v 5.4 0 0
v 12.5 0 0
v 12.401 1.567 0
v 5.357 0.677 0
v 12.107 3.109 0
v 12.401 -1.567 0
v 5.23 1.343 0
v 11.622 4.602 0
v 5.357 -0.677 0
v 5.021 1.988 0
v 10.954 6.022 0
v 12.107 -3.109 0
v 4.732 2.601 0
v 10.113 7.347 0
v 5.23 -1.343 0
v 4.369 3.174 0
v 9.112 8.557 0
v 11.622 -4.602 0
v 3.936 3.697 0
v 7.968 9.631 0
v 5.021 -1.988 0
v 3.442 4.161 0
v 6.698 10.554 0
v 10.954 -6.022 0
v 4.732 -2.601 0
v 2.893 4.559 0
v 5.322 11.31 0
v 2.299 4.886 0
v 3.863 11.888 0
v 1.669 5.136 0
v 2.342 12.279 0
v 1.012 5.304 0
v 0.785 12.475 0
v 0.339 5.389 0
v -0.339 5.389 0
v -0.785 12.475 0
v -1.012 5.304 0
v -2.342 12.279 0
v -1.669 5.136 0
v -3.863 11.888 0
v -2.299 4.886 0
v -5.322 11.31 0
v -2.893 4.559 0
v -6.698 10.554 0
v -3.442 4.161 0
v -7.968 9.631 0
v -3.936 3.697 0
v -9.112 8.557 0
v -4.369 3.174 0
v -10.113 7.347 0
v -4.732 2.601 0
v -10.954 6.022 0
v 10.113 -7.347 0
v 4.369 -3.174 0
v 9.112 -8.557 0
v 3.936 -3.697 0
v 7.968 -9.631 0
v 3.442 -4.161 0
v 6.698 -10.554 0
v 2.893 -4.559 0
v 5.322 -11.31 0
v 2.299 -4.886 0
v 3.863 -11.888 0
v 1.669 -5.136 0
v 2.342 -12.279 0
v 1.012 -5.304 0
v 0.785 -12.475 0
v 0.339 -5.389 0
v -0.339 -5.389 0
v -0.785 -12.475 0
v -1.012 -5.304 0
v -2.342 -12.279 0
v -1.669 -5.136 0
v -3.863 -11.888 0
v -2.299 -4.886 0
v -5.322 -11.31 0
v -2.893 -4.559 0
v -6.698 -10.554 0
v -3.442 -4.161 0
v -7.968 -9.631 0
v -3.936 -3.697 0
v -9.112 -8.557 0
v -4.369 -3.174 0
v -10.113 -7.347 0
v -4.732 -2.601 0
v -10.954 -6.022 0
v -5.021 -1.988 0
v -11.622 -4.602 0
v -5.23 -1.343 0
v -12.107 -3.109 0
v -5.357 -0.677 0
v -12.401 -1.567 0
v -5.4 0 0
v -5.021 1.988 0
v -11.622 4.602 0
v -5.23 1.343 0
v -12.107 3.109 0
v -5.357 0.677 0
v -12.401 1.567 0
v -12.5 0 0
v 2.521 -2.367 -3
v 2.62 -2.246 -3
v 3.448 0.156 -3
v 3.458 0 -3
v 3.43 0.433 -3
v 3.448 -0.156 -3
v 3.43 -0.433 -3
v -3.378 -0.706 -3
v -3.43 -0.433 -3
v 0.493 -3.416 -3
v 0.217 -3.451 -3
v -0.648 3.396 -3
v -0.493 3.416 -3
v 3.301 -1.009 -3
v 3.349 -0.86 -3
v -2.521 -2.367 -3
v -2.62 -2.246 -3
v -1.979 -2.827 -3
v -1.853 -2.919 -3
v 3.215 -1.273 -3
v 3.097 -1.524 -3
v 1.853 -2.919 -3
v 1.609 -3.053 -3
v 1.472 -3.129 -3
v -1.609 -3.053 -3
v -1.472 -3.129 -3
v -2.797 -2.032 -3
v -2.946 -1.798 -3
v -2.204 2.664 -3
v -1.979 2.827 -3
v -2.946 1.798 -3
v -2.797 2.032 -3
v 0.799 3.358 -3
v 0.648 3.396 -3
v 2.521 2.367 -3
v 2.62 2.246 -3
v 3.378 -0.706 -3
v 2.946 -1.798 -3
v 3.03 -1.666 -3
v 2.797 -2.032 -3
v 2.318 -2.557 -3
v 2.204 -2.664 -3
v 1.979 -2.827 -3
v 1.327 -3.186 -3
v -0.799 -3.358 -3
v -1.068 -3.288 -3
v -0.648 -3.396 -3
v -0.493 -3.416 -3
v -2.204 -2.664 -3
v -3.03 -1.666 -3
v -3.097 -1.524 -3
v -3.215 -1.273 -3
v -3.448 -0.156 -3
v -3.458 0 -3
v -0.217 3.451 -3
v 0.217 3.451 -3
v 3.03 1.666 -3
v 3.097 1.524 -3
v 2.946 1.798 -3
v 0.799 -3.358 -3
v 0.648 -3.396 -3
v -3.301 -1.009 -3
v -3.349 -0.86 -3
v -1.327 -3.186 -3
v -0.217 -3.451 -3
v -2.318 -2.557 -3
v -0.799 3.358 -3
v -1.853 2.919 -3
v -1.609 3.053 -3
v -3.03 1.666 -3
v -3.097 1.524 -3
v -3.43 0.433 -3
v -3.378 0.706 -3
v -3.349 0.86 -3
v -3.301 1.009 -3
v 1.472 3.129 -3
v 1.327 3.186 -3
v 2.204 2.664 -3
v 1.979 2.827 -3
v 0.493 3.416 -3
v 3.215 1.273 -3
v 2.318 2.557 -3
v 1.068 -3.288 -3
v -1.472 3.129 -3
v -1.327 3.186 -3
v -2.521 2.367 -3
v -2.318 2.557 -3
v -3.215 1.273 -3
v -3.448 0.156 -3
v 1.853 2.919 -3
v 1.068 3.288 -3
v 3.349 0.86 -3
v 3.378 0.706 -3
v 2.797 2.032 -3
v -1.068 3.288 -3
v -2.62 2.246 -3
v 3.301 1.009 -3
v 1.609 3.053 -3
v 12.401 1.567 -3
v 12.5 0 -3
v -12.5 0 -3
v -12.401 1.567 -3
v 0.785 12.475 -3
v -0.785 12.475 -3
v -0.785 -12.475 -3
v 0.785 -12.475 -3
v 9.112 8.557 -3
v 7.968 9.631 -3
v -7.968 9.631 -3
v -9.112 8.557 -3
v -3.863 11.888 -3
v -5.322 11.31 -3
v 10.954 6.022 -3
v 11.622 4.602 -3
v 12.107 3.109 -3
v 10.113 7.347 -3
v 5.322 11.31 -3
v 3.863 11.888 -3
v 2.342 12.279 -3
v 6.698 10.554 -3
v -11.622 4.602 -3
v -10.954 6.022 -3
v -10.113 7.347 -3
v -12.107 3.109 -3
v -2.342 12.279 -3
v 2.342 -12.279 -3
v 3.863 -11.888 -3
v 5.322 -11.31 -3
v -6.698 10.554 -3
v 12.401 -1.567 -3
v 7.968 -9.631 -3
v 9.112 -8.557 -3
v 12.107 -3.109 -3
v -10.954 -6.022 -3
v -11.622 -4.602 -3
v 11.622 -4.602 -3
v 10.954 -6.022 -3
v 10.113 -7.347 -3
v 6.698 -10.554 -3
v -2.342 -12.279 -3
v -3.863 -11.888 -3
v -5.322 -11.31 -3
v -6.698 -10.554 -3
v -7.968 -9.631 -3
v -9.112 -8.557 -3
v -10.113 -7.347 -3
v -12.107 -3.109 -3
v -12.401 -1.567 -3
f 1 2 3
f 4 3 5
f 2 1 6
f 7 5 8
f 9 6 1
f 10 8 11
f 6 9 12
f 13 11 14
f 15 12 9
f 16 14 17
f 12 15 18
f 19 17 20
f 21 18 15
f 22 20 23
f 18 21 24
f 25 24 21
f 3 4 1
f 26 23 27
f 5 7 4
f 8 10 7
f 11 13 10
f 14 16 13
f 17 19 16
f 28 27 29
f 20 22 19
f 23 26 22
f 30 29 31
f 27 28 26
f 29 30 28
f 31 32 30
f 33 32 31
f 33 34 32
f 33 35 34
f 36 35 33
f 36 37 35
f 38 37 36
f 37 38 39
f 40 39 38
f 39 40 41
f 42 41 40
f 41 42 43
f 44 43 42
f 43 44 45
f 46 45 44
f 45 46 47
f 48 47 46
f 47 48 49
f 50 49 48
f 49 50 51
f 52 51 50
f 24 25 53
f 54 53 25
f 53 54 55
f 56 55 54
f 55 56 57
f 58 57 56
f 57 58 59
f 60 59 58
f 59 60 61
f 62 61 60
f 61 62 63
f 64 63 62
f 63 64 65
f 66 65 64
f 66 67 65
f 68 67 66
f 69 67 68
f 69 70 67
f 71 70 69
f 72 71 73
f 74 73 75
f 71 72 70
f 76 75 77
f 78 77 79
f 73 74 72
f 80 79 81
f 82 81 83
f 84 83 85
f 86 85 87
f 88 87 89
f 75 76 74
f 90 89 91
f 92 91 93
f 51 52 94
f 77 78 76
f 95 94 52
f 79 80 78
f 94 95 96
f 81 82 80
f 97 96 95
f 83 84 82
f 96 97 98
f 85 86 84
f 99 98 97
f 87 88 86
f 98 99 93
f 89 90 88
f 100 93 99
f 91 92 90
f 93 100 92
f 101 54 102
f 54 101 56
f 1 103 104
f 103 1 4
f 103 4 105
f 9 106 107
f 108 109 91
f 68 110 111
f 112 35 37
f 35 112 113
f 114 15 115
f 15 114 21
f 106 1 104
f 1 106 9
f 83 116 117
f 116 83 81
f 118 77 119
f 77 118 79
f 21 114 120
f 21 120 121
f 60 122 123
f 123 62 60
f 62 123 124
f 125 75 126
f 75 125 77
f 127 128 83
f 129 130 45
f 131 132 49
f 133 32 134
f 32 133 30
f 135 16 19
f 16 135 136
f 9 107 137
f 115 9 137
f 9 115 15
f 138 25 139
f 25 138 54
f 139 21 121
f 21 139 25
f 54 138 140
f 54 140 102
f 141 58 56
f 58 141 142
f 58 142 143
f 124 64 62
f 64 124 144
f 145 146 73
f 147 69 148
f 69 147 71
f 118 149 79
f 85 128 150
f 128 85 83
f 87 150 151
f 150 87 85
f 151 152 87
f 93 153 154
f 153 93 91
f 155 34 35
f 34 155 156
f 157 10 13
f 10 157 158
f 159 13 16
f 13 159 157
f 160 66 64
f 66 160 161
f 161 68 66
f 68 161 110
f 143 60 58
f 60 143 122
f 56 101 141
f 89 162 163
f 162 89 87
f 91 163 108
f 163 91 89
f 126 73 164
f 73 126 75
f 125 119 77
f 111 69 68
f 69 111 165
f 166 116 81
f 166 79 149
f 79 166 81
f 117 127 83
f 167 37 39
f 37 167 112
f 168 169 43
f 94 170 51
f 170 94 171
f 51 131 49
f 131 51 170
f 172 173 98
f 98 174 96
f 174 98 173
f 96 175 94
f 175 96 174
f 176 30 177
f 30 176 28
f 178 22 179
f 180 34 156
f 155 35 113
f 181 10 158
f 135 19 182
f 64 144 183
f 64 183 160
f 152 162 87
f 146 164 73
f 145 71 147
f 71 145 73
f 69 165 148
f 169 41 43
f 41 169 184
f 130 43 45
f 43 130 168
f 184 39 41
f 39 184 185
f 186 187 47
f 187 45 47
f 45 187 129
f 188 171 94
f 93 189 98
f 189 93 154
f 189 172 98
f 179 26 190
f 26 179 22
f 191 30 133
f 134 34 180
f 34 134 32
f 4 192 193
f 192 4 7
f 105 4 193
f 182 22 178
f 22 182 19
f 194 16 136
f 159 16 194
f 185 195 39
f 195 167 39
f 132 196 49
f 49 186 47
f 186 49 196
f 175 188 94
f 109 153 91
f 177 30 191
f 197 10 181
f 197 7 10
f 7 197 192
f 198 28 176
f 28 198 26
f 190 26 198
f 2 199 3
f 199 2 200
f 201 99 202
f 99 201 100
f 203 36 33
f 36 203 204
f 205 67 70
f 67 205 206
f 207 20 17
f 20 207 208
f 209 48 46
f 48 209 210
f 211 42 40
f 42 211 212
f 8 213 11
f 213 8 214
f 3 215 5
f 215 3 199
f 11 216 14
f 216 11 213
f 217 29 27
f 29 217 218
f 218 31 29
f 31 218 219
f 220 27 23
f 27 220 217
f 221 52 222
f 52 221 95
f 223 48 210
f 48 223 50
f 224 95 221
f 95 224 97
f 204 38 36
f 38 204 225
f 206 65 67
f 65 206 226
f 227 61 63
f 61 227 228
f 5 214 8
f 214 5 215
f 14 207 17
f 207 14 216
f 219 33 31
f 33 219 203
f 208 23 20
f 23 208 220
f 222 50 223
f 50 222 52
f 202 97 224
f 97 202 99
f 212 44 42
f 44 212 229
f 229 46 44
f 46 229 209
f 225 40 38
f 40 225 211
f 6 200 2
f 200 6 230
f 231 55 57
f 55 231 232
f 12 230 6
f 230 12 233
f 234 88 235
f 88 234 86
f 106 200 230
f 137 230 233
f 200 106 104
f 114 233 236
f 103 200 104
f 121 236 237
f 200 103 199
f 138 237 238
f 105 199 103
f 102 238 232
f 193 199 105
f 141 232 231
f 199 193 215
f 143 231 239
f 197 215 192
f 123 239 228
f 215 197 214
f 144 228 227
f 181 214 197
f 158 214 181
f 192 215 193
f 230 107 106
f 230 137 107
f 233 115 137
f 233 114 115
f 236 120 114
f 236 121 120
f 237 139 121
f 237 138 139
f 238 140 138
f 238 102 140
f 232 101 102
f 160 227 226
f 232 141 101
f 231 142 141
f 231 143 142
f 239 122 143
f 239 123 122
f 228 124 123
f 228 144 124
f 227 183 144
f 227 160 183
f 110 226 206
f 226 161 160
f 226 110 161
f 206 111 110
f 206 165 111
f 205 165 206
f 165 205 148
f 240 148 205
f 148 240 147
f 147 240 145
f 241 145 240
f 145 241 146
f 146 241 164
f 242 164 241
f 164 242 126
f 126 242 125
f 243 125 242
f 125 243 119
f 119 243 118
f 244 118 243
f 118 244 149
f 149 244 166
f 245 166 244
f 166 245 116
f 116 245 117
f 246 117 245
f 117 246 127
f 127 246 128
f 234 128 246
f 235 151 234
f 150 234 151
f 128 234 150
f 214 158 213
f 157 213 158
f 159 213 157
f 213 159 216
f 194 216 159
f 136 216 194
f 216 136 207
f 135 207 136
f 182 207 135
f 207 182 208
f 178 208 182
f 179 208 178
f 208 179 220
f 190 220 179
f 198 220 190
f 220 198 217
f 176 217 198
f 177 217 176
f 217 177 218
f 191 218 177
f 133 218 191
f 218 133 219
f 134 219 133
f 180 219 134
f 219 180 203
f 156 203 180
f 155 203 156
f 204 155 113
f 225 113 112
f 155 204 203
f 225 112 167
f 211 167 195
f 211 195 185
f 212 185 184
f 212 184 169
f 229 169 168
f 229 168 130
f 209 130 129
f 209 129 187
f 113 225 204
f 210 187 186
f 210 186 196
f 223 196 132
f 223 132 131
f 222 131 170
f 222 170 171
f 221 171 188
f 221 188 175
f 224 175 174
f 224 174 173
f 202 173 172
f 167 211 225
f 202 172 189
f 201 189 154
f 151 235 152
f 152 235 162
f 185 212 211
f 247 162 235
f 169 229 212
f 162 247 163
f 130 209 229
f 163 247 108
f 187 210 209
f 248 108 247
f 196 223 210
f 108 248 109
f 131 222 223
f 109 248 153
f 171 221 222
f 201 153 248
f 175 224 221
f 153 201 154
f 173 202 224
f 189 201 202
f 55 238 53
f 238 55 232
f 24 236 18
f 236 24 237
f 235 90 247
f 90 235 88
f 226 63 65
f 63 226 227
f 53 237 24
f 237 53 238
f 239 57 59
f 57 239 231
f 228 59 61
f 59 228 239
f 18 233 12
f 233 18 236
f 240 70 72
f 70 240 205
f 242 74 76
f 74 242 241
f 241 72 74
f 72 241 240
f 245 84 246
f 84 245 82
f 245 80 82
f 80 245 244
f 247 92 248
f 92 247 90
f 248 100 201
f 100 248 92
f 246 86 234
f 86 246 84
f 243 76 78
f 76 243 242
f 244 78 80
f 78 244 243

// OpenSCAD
$fn = 50;

difference() {
	union() {
		translate(v = [0, 0, -3.0]) {
			cylinder(h = 3, r = 12.5);
		}
		#translate(v = [0, 0, -6.0]) {
			cylinder(h = 6, r = 2.875);
		}
	}
	union() {
		translate(v = [0, 0, 0]) {
			rotate(a = [0, 0, 0]) {
				difference() {
					union() {
						translate(v = [0, 0, -6.0]) {
							cylinder(h = 6, r = 2.6);
						}
						translate(v = [0, 0, -3.9]) {
							cylinder(h = 3.9, r1 = 2.875, r2 = 5.4);
						}
						translate(v = [0, 0, -6.0]) {
							cylinder(h = 6, r = 2.875);
						}
						translate(v = [0, 0, -6.0]) {
							cylinder(h = 6, r = 2.6);
						}
					}
					union();
				}
			}
		}
	}
}
